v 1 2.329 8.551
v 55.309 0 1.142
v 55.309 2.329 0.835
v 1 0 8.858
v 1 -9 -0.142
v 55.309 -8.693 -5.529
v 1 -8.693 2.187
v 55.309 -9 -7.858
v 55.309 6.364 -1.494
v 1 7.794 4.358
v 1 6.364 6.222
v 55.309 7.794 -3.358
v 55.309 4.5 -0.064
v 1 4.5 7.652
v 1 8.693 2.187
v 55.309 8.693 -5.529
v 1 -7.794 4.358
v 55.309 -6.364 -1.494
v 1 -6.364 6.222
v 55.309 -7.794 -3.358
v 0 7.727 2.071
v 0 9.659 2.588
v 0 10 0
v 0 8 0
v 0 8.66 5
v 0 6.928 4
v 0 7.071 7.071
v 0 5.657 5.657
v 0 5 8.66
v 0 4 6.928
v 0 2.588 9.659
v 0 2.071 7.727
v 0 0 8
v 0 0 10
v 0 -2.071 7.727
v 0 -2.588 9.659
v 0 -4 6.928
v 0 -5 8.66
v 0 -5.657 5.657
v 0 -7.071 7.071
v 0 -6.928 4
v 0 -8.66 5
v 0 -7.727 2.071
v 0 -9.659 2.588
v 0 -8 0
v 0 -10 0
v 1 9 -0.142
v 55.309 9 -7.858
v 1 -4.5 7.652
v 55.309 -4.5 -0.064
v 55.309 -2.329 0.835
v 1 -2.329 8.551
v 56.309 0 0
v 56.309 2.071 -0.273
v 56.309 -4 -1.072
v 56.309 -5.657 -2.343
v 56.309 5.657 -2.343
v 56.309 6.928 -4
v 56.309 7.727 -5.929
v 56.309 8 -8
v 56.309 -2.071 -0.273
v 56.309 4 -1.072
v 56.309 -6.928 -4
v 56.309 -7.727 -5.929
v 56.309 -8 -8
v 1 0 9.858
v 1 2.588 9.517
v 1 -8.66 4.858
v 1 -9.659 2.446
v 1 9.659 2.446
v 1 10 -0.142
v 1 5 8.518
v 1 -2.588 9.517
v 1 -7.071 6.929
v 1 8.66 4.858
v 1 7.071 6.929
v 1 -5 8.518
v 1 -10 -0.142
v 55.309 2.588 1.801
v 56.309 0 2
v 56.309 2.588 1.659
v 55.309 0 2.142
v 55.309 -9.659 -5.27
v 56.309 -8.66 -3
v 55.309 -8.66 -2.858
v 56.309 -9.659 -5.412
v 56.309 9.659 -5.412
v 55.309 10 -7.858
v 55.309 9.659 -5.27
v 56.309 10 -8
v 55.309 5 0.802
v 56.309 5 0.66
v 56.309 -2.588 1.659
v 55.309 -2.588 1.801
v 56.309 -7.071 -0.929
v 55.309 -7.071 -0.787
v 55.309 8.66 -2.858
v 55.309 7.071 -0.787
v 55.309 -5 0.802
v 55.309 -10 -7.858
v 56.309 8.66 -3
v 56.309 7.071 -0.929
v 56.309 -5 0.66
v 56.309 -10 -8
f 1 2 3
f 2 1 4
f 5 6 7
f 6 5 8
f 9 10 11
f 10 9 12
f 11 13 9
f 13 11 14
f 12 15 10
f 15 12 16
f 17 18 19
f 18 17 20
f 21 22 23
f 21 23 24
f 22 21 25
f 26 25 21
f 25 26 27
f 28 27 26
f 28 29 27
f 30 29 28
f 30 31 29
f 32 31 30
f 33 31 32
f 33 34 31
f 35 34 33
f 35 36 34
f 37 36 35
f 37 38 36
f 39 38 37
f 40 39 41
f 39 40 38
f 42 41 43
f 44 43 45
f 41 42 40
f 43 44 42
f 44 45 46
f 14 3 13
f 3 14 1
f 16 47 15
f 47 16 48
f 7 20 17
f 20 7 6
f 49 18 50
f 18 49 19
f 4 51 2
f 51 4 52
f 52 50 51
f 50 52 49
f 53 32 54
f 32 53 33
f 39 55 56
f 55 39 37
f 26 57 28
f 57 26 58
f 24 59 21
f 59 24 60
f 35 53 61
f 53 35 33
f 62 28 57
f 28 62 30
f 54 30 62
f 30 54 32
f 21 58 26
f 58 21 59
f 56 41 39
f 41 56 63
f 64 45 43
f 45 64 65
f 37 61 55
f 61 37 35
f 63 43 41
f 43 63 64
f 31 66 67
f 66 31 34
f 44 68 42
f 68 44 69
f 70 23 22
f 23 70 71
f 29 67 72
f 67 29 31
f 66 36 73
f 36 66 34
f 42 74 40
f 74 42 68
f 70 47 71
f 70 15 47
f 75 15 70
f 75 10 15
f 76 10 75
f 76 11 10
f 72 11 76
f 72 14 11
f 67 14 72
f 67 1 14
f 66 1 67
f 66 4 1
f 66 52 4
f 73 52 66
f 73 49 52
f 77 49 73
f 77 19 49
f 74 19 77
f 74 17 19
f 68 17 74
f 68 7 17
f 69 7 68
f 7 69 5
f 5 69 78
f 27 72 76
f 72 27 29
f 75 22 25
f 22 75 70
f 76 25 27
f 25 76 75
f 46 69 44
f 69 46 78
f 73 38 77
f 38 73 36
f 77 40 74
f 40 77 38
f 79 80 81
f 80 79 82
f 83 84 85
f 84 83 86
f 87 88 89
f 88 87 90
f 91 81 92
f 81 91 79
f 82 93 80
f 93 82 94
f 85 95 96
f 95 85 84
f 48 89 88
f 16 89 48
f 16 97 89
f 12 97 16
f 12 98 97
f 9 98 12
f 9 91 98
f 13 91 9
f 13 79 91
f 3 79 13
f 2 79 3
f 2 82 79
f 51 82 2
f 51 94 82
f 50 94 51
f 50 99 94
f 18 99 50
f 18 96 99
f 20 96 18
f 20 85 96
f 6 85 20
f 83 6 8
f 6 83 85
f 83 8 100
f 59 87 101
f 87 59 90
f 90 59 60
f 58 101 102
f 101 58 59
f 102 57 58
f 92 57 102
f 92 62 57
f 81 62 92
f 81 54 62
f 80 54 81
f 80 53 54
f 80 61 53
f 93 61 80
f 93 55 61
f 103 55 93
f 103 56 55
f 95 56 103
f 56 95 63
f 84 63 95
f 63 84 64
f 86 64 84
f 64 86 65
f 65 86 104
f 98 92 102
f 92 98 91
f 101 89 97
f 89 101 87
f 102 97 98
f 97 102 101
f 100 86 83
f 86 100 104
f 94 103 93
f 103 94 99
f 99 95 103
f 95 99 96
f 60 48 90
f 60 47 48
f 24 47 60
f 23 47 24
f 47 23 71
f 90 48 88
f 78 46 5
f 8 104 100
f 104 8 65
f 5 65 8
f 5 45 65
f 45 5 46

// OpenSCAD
// file: ../build_environments.scad
// build_environments.scad: modules to build level sections
//

module pool(diameter=10.0, wall_height=2.0, step_width=3.0, connections=[])
{
    difference() {
        union() {
        difference() {
            cylinder(h=0.5,r1=diameter+step_width,r2=diameter+step_width,$fn=48);
            translate([0,0,-0.1])
                cylinder(h=0.7,r1=diameter,r2=diameter,$fn=48);
        }
        difference() {
            cylinder(h=wall_height,r1=diameter+step_width+1.0,r2=diameter+step_width+1.0,$fn=48);
            translate([0,0,-0.1])
                cylinder(h=wall_height+0.2,r1=diameter+step_width,r2=diameter+step_width,$fn=48);
        }
        }
    
        for (c = connections)
        {
            rotate([0,90,0]) {
                angle = atan2(c[1],c[0]);
                rotate([-angle,0,0]) {
                    cylinder(h=diameter+5.0,r1=c[2],r2=c[2],$fn=48);
                }
            }
        }
    }
}

module straight(length=10.0, width=2.0, dy1=0.0, dy2=0.0, dz=0.0)
{
    dims = [0, 0, 0, 0, 0, (dz/length)];
    matrix = [
        [ 1, dims[0], dims[1], 0 ],
        [ dims[2], 1, dims[4], 0 ],
        [ dims[5], dims[3], 1, 0 ],
        [ 0, 0, 0, 1 ]
    ];
    multmatrix(matrix)
    difference() {
        translate([dy1,0,0])
        union() {
            rotate([0,90,0]) {
                difference() {
                    cylinder(h=(length-dy1-dy2),r1=width+1.0,r2=width+1.0,$fn=24);
                    translate([0,0,-0.1])
                        cylinder(h=(length-dy1-dy2+0.2),r1=width,r2=width,$fn=24);
                }
                difference() {
                    cylinder(h=1.0,r1=width+2.0,r2=width+2.0,$fn=24);
                    translate([0,0,-0.1])
                        cylinder(h=1.2,r1=width,r2=width,$fn=24);
                }
                translate([0,0,(length-dy1-dy2)-1.0]) {
                    difference() {
                        cylinder(h=1.0,r1=width+2.0,r2=width+2.0,$fn=24);
                        translate([0,0,-0.1])
                            cylinder(h=1.2,r1=width,r2=width,$fn=24);
                    }
                }
            }
        }
        translate([0,0,-(2*width+4.0)/2])
            cube([3*length,3*length,2*width+4.0],center=true);
    }
}

module curve(p0=[0,0], center=[0,0], dir=1, angle=0.0, width=2.0)
{
    radius = sqrt((p0[0]-center[0])*(p0[0]-center[0]) + (p0[1]-center[1])*(p0[1]-center[1]));
    if (dir == 0) {
        difference() {
            rotate([0,0,-90])
            difference() {
                rotate_extrude(angle = angle, convexity = 10, $fn=32)
                    translate([radius, 0, 0])
                        circle(r = width+1.0,$fn=24);
                rotate([0,0,-1.0])
                    rotate_extrude(angle = angle+2.0, convexity = 10, $fn=32)
                        translate([radius, 0, 0])
                            circle(r = width,$fn=24);
            }
            translate([0,0,-(2*width+4.0)/2])
                cube([5*radius,5*radius,2*width+4.0],center=true);
        }
    }
    else {
        difference() {
            rotate([0,0,90])
            difference() {
                rotate_extrude(angle = -angle, convexity = 10, $fn=32)
                    translate([radius, 0, 0])
                        circle(r = width+1.0,$fn=24);
                rotate([0,0,1.0])
                    rotate_extrude(angle = -angle-2.0, convexity = 10, $fn=32)
                        translate([radius, 0, 0])
                            circle(r = width,$fn=24);
            }
            translate([0,0,-(2*width+4.0)/2])
                cube([5*radius,5*radius,2*width+4.0],center=true);
        }
    }

}

// test pool
//pool(diameter=12.0000, wall_height=3.0000, step_width=3.0000, connections=[[0.0000,-26.0000,2.0000], [23.6074,0.0000,2.0000]]);

// test straight, slope
//straight(length=26.0000, width=2.0000, dy1=11.8322, dy2=6.7082, dz=0.0000);
//straight(length=29.1549, width=12.0000, dy1=0.0000, dy2=0.0000, dz=-15.0000);

// test curve
//curve(p0=[23.6074, 0.0000], center=[23.6074, 5.0000], dir=0, angle=60.1011, width=2.0000);
//curve(p0=[33.6426, 12.4219], center=[37.9771, 9.9295], dir=1, angle=120.4627, width=2.0000);
// main file
use <../build_environments.scad>;
straight(length=56.3092, width=8.0000, dy1=0.0000, dy2=0.0000, dz=-8.0000);
